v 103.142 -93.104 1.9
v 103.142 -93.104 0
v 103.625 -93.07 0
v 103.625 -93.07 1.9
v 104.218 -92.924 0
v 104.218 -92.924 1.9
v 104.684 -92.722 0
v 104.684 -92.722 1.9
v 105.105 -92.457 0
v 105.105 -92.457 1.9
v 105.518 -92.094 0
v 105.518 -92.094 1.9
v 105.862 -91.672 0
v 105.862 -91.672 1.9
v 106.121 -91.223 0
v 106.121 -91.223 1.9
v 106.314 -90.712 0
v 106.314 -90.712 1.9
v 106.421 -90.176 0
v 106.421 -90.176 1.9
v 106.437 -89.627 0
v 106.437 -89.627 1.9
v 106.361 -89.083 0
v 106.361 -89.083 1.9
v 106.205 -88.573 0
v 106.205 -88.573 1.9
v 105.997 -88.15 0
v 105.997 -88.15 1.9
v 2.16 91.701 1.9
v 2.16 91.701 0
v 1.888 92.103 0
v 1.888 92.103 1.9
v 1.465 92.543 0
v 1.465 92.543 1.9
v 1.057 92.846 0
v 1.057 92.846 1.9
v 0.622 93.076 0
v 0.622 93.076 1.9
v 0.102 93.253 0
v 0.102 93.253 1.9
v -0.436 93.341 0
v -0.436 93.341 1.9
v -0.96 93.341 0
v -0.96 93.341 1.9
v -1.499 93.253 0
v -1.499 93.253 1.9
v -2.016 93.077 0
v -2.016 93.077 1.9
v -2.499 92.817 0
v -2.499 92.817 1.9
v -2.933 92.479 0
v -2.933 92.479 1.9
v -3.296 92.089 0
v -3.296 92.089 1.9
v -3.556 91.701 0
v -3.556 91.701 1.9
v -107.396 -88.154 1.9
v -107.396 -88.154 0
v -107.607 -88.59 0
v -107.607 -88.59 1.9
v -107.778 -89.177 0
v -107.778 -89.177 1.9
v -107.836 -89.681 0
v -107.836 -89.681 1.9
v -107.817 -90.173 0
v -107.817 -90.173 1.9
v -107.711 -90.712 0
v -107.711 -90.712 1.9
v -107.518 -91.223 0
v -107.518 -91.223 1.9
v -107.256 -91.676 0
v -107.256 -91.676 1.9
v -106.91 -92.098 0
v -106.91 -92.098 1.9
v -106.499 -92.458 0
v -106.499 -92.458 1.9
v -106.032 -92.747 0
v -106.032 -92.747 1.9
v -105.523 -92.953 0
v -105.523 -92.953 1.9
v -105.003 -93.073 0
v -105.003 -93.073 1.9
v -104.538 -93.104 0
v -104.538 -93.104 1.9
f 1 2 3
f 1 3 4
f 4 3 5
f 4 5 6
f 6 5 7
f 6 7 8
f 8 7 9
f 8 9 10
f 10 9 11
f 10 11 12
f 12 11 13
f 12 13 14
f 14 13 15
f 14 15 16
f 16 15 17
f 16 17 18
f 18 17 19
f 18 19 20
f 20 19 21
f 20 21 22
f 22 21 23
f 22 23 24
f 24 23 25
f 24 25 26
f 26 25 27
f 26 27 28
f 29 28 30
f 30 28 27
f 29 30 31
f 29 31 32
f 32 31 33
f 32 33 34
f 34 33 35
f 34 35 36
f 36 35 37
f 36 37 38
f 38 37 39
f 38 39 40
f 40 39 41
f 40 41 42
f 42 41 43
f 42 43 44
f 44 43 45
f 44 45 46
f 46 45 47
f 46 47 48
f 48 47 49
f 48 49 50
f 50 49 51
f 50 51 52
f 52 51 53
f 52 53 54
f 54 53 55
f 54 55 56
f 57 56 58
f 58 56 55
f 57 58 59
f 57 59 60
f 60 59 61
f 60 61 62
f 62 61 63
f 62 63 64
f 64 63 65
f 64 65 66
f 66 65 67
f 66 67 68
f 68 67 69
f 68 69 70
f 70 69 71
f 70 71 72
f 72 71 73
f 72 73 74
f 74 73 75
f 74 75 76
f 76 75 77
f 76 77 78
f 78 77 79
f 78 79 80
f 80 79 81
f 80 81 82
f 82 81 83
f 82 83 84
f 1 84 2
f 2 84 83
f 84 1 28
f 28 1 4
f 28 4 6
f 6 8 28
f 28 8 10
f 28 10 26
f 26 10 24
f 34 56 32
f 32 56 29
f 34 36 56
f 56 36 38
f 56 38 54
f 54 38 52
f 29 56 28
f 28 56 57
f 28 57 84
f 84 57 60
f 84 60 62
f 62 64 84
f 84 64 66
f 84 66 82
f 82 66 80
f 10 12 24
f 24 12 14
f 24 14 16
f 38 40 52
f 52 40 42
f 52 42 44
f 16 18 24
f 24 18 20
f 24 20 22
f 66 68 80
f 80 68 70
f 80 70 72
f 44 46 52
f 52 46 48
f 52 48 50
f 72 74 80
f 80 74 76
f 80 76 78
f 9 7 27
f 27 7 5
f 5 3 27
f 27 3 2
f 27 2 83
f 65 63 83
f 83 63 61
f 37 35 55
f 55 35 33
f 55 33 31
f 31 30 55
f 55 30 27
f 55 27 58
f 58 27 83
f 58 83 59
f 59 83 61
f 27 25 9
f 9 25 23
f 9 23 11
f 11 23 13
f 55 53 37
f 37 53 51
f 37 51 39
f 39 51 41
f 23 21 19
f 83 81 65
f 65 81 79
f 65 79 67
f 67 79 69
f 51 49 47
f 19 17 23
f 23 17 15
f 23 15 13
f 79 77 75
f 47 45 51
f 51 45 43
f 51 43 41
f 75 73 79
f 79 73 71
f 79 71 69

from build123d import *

# Parameters (mm, degrees)
BOSS_EXTRU_1_DEPTH = 1.9


with BuildPart() as part:
    # Esquisse1 → Boss.-Extru.1 (new body)
    with BuildSketch(Plane.XY):
        with BuildLine():
            Line((103.141629659, -93.104422445), (-104.537862265, -93.104422445))
            add(Edge.make_bspline(
                [(-104.537862265, -93.104422445), (-104.576313156, -93.104422445), (-104.614764048, -93.104422445), (-104.653209533, -93.104125461), (-104.768513557, -93.101452602), (-104.883671631, -93.090761166), (-104.960260867, -93.08067219), (-105.150982063, -93.049552521), (-105.339086356, -93.007455152), (-105.450747192, -92.977883193), (-105.671146078, -92.909389067), (-105.884660771, -92.820748262), (-105.989422935, -92.771633631), (-106.194408631, -92.664300797), (-106.389220526, -92.539730583), (-106.48384332, -92.473274378), (-106.667043194, -92.332296267), (-106.837192824, -92.17573974), (-106.91879647, -92.093784348), (-107.074644208, -91.922954256), (-107.214938405, -91.739155447), (-107.281028071, -91.644254137), (-107.404754439, -91.448928258), (-107.51089869, -91.243516958), (-107.55945325, -91.138557181), (-107.64728317, -90.924663828), (-107.716066547, -90.703891793), (-107.745614057, -90.592075935), (-107.794855636, -90.366164197), (-107.824060167, -90.136851737), (-107.833655342, -90.021622167), (-107.842835855, -89.790570025), (-107.832005382, -89.559439241), (-107.821514669, -89.444212724), (-107.790403383, -89.216374252), (-107.738630165, -88.992714706), (-107.708207682, -88.882559264), (-107.650563592, -88.701220982), (-107.582401802, -88.523090493), (-107.553106564, -88.452964824), (-107.50557398, -88.350258026), (-107.451336724, -88.251263547), (-107.432968479, -88.218893501), (-107.414357288, -88.186657973), (-107.395746098, -88.154422445)],
                knots=[0, 0, 0, 0, 0, 0, 0.027851934, 0.027851934, 0.027851934, 0.083555801, 0.083555801, 0.083555801, 0.167111603, 0.167111603, 0.167111603, 0.250667404, 0.250667404, 0.250667404, 0.334223205, 0.334223205, 0.334223205, 0.417779006, 0.417779006, 0.417779006, 0.501334808, 0.501334808, 0.501334808, 0.584890609, 0.584890609, 0.584890609, 0.66844641, 0.66844641, 0.66844641, 0.752002212, 0.752002212, 0.752002212, 0.835558013, 0.835558013, 0.835558013, 0.918223942, 0.918223942, 0.918223942, 0.973037938, 0.973037938, 0.973037938, 1, 1, 1, 1, 1, 1], degree=5))
            Line((-107.395746098, -88.154422445), (-3.556000135, 91.701293407))
            add(Edge.make_bspline(
                [(-3.556000135, 91.701293407), (-3.53677469, 91.734592855), (-3.517549244, 91.767892304), (-3.498069305, 91.801038579), (-3.43810253, 91.899558363), (-3.371264438, 91.993942462), (-3.324232511, 92.055226199), (-3.201921489, 92.204835765), (-3.071411952, 92.346690177), (-2.989971465, 92.428605318), (-2.820454369, 92.585229289), (-2.636931834, 92.725818035), (-2.542016234, 92.791987415), (-2.346570425, 92.915843818), (-2.141283507, 93.022270761), (-2.036419348, 93.070988402), (-1.822728786, 93.159155091), (-1.602072042, 93.22823073), (-1.490294768, 93.257923864), (-1.264427699, 93.307476918), (-1.035106162, 93.337075852), (-0.919874384, 93.346860527), (-0.688854027, 93.356347766), (-0.457890497, 93.345565733), (-0.342715384, 93.335135327), (-0.113563347, 93.304251593), (0.112022532, 93.253433727), (0.223631661, 93.223114692), (0.443897755, 93.152803282), (0.657090436, 93.063438917), (0.761679759, 93.014133797), (0.96636704, 92.906558284), (1.161116934, 92.781613428), (1.255660668, 92.714914945), (1.437418929, 92.574052545), (1.605227169, 92.41738585), (1.685413339, 92.335961486), (1.813634853, 92.195371099), (1.933819487, 92.047276013), (1.979902479, 91.986842758), (2.045082883, 91.894324933), (2.103695988, 91.797856852), (2.122545148, 91.765764463), (2.141156339, 91.733528935), (2.159767529, 91.701293407)],
                knots=[0, 0, 0, 0, 0, 0, 0.027851934, 0.027851934, 0.027851934, 0.083555801, 0.083555801, 0.083555801, 0.167111603, 0.167111603, 0.167111603, 0.250667404, 0.250667404, 0.250667404, 0.334223205, 0.334223205, 0.334223205, 0.417779006, 0.417779006, 0.417779006, 0.501334808, 0.501334808, 0.501334808, 0.584890609, 0.584890609, 0.584890609, 0.66844641, 0.66844641, 0.66844641, 0.752002212, 0.752002212, 0.752002212, 0.835558013, 0.835558013, 0.835558013, 0.918223942, 0.918223942, 0.918223942, 0.973037938, 0.973037938, 0.973037938, 1, 1, 1, 1, 1, 1], degree=5))
            Line((2.159767529, 91.701293407), (105.997013492, -88.150092318))
            add(Edge.make_bspline(
                [(105.997013492, -88.150092318), (105.997513492, -88.150958343), (105.998013492, -88.151824369), (105.998513492, -88.152690394), (105.999013492, -88.15355642), (106.018738937, -88.187721894), (106.037964383, -88.221021342), (106.05692993, -88.254464601), (106.112267178, -88.355657245), (106.16058716, -88.46073278), (106.190144469, -88.532105492), (106.258554643, -88.712834727), (106.316149398, -88.896786508), (106.346369749, -89.008273609), (106.397251538, -89.233391706), (106.427243696, -89.462621256), (106.43709026, -89.577905267), (106.446630147, -89.809094504), (106.436155125, -90.040091661), (106.42591376, -90.155265507), (106.395423071, -90.384410308), (106.344915957, -90.610042473), (106.314742328, -90.721690999), (106.244722998, -90.942074145), (106.155695658, -91.155471889), (106.106553546, -91.260157873), (105.999259557, -91.464970991), (105.874440278, -91.659600259), (105.807819725, -91.75412963), (105.666497608, -91.937139248), (105.509695105, -92.107093417), (105.427633487, -92.188590241), (105.256608973, -92.344190568), (105.072620822, -92.484138664), (104.977626674, -92.550063114), (104.782119906, -92.673539742), (104.576539539, -92.77972567), (104.471505092, -92.828253704), (104.258635545, -92.915229776), (104.039054087, -92.982222627), (103.928445434, -93.010953705), (103.74257983, -93.0517016), (103.554233407, -93.081737003), (103.478855177, -93.091429417), (103.366142188, -93.101618391), (103.253291827, -93.104144789), (103.216074423, -93.104422445), (103.178852041, -93.104422445), (103.141629659, -93.104422445)],
                knots=[0, 0, 0, 0, 0, 0, 0.000723486, 0.000723486, 0.000723486, 0.000723486, 0.028555269, 0.028555269, 0.028555269, 0.084218835, 0.084218835, 0.084218835, 0.167714185, 0.167714185, 0.167714185, 0.251209535, 0.251209535, 0.251209535, 0.334704885, 0.334704885, 0.334704885, 0.418200235, 0.418200235, 0.418200235, 0.501695585, 0.501695585, 0.501695585, 0.585190935, 0.585190935, 0.585190935, 0.668686285, 0.668686285, 0.668686285, 0.752181634, 0.752181634, 0.752181634, 0.835676984, 0.835676984, 0.835676984, 0.918283106, 0.918283106, 0.918283106, 0.973057445, 0.973057445, 0.973057445, 1, 1, 1, 1, 1, 1], degree=5))
        make_face()
    extrude(amount=BOSS_EXTRU_1_DEPTH)


solid = part.part
